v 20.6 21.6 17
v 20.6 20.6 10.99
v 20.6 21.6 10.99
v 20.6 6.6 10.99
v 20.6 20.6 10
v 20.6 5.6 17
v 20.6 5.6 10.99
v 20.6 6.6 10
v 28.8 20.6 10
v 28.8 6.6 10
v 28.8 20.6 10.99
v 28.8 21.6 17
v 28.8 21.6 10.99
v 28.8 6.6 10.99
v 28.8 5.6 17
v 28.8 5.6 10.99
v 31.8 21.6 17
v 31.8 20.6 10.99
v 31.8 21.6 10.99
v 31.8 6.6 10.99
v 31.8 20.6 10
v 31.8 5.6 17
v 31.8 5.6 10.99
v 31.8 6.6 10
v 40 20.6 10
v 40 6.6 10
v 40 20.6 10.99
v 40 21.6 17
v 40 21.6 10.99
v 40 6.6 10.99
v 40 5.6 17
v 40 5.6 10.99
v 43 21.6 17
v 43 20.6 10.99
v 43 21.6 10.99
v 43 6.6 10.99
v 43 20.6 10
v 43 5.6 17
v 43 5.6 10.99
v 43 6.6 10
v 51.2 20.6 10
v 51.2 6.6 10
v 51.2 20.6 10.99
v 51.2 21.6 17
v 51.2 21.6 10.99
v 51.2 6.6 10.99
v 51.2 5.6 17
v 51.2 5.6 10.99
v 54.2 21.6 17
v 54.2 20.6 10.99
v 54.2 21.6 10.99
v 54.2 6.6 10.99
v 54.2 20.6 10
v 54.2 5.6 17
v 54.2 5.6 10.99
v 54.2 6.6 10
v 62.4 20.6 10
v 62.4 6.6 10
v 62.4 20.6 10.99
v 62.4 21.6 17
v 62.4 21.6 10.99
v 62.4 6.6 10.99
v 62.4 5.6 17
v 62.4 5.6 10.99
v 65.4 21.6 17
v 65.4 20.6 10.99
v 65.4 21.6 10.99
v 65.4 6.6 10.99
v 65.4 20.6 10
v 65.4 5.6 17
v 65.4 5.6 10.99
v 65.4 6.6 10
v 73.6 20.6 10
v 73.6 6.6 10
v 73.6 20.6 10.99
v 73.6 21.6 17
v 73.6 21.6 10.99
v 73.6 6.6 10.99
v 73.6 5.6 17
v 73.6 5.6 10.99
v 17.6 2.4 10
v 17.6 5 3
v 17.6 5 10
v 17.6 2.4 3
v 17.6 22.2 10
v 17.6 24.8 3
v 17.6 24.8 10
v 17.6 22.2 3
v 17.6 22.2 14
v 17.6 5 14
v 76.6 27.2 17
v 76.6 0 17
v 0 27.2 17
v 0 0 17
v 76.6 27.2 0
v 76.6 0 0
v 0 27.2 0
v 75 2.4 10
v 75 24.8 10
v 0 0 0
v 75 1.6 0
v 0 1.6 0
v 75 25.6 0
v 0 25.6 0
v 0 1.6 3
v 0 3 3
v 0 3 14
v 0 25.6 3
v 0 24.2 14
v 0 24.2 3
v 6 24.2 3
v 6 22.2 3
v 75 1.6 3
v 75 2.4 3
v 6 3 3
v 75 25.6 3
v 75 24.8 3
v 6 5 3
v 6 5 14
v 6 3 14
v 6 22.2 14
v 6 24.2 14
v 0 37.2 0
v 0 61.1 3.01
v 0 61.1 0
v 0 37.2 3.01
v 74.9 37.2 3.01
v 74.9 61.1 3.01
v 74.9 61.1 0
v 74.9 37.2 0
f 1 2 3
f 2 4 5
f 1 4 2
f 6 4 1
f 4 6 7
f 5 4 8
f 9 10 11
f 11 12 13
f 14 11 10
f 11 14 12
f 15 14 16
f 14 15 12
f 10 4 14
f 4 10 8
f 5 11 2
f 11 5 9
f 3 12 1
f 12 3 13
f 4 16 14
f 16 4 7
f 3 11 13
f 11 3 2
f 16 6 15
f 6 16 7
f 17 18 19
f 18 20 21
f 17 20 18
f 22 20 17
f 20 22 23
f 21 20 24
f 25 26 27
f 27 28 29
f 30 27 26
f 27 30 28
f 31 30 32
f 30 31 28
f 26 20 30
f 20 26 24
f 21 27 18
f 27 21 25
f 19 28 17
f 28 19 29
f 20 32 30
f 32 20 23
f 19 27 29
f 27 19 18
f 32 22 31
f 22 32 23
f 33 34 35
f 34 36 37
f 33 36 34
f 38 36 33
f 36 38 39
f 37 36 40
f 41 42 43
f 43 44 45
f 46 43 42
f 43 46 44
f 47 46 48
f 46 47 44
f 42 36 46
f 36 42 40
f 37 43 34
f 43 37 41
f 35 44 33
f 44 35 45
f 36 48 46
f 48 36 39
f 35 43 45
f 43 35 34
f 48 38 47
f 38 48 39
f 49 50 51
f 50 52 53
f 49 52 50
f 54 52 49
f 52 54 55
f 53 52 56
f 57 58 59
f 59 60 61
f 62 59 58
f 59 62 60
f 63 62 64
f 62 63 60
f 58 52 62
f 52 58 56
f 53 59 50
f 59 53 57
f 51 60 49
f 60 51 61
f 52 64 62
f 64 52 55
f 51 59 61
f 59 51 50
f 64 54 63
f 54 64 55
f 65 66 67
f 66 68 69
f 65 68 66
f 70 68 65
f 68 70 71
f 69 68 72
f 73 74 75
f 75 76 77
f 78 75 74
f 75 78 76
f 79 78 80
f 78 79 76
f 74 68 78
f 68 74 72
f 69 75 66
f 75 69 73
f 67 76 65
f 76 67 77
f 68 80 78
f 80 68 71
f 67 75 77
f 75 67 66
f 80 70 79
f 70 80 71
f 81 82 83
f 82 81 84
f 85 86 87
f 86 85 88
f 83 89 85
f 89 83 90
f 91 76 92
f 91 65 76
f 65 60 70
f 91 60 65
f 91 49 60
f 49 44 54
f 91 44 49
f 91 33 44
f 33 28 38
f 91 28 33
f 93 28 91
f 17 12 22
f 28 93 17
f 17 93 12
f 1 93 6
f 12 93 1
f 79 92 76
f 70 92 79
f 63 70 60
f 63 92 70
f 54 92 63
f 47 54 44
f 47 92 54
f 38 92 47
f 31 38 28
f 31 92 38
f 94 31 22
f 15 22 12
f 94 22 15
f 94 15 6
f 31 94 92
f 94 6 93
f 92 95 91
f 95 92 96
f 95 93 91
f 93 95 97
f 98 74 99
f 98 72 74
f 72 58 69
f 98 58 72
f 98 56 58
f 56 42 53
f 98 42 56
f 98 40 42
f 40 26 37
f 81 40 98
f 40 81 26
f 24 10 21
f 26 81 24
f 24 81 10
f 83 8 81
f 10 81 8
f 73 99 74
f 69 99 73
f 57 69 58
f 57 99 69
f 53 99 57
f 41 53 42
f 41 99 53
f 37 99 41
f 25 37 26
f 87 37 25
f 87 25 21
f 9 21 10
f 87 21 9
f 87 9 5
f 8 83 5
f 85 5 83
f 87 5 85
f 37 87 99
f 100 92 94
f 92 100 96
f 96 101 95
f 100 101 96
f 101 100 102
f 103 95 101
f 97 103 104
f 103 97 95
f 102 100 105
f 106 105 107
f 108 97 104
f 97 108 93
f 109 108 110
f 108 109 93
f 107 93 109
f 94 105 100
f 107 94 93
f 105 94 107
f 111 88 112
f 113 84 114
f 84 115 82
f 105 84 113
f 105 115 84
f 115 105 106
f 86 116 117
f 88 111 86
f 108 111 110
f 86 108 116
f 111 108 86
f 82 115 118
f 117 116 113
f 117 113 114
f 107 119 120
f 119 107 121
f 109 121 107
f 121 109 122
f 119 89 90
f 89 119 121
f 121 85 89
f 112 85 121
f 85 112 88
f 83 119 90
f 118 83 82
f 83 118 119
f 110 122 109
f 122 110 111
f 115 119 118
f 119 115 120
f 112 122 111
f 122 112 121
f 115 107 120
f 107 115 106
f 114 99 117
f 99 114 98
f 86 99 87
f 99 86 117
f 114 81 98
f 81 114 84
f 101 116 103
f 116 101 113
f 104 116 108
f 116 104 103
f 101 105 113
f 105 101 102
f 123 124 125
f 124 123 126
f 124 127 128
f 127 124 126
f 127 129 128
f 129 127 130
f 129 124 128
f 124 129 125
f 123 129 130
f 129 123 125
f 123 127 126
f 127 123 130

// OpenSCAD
xt60_width = 8.2;
xt60_length = 16;
xt60_height = 16;

xt90_width = 11;
xt90_length = 21.2;
xt90_height = 21.5;

socket_depth = 6;
socket_lip = 1;
socket_spacing = 3;
socket_count = 5;

block_x = socket_count * (xt60_width + socket_spacing) + socket_spacing;
block_y = xt90_length + socket_spacing*2;
block_z = socket_lip + socket_depth;

sideblock_y = block_y;
sideblock_x = xt90_width + socket_spacing*2;
sideblock_z = socket_depth + socket_lip + xt90_length/2;

wall_thickness = 1.6;
fit = 0.1;

f = 0.01;
df = f*2;

module xt60() {
    translate([0, socket_lip, -f])
        cube([xt60_width, xt60_length - socket_lip*2, socket_lip + f]);
    translate([0, 0, socket_lip - f])
        cube([xt60_width, xt60_length, xt60_height]);
}

module xt60_block() {
    difference() {
        cube([block_x, block_y, block_z]);
        for(x = [1 : socket_count]) {
            translate([x * socket_spacing + (x-1) * xt60_width, socket_spacing + (xt90_length - xt60_length)/2, 0])
                xt60();
        }
    }
    difference() {
        neg_z = sideblock_x - block_z;
        translate([0, 0, -neg_z])
            cube([block_x, block_y, neg_z]);
        translate([0, wall_thickness*1.5, -neg_z])
            cube([block_x - wall_thickness, block_y - wall_thickness*3, neg_z]);

    }
}

module xt90_block() {
    difference() {
        cube([sideblock_x, sideblock_y, sideblock_z]);
        translate([socket_spacing, socket_spacing + socket_lip*2, -f])
            cube([xt90_width, xt90_length - socket_lip*4, sideblock_z + df]);
        translate([socket_spacing, socket_spacing, sideblock_z - socket_depth])
            cube([xt90_width, xt90_length, xt90_height]);
    }
}

difference() {
    translate([sideblock_z, 0, sideblock_x - block_z])
        union() {
            xt60_block();
            translate([0, 0, block_z-sideblock_x])
                rotate([0, -90, 0])
                    xt90_block();
        }
    translate([0, wall_thickness, -f])
        cube([sideblock_z + block_x - wall_thickness, block_y - wall_thickness*2, socket_spacing + f]);
}

translate([0, block_y + 10, 0])
    cube([sideblock_z + block_x - wall_thickness - fit, block_y - wall_thickness*2 - fit, socket_spacing + f]);
